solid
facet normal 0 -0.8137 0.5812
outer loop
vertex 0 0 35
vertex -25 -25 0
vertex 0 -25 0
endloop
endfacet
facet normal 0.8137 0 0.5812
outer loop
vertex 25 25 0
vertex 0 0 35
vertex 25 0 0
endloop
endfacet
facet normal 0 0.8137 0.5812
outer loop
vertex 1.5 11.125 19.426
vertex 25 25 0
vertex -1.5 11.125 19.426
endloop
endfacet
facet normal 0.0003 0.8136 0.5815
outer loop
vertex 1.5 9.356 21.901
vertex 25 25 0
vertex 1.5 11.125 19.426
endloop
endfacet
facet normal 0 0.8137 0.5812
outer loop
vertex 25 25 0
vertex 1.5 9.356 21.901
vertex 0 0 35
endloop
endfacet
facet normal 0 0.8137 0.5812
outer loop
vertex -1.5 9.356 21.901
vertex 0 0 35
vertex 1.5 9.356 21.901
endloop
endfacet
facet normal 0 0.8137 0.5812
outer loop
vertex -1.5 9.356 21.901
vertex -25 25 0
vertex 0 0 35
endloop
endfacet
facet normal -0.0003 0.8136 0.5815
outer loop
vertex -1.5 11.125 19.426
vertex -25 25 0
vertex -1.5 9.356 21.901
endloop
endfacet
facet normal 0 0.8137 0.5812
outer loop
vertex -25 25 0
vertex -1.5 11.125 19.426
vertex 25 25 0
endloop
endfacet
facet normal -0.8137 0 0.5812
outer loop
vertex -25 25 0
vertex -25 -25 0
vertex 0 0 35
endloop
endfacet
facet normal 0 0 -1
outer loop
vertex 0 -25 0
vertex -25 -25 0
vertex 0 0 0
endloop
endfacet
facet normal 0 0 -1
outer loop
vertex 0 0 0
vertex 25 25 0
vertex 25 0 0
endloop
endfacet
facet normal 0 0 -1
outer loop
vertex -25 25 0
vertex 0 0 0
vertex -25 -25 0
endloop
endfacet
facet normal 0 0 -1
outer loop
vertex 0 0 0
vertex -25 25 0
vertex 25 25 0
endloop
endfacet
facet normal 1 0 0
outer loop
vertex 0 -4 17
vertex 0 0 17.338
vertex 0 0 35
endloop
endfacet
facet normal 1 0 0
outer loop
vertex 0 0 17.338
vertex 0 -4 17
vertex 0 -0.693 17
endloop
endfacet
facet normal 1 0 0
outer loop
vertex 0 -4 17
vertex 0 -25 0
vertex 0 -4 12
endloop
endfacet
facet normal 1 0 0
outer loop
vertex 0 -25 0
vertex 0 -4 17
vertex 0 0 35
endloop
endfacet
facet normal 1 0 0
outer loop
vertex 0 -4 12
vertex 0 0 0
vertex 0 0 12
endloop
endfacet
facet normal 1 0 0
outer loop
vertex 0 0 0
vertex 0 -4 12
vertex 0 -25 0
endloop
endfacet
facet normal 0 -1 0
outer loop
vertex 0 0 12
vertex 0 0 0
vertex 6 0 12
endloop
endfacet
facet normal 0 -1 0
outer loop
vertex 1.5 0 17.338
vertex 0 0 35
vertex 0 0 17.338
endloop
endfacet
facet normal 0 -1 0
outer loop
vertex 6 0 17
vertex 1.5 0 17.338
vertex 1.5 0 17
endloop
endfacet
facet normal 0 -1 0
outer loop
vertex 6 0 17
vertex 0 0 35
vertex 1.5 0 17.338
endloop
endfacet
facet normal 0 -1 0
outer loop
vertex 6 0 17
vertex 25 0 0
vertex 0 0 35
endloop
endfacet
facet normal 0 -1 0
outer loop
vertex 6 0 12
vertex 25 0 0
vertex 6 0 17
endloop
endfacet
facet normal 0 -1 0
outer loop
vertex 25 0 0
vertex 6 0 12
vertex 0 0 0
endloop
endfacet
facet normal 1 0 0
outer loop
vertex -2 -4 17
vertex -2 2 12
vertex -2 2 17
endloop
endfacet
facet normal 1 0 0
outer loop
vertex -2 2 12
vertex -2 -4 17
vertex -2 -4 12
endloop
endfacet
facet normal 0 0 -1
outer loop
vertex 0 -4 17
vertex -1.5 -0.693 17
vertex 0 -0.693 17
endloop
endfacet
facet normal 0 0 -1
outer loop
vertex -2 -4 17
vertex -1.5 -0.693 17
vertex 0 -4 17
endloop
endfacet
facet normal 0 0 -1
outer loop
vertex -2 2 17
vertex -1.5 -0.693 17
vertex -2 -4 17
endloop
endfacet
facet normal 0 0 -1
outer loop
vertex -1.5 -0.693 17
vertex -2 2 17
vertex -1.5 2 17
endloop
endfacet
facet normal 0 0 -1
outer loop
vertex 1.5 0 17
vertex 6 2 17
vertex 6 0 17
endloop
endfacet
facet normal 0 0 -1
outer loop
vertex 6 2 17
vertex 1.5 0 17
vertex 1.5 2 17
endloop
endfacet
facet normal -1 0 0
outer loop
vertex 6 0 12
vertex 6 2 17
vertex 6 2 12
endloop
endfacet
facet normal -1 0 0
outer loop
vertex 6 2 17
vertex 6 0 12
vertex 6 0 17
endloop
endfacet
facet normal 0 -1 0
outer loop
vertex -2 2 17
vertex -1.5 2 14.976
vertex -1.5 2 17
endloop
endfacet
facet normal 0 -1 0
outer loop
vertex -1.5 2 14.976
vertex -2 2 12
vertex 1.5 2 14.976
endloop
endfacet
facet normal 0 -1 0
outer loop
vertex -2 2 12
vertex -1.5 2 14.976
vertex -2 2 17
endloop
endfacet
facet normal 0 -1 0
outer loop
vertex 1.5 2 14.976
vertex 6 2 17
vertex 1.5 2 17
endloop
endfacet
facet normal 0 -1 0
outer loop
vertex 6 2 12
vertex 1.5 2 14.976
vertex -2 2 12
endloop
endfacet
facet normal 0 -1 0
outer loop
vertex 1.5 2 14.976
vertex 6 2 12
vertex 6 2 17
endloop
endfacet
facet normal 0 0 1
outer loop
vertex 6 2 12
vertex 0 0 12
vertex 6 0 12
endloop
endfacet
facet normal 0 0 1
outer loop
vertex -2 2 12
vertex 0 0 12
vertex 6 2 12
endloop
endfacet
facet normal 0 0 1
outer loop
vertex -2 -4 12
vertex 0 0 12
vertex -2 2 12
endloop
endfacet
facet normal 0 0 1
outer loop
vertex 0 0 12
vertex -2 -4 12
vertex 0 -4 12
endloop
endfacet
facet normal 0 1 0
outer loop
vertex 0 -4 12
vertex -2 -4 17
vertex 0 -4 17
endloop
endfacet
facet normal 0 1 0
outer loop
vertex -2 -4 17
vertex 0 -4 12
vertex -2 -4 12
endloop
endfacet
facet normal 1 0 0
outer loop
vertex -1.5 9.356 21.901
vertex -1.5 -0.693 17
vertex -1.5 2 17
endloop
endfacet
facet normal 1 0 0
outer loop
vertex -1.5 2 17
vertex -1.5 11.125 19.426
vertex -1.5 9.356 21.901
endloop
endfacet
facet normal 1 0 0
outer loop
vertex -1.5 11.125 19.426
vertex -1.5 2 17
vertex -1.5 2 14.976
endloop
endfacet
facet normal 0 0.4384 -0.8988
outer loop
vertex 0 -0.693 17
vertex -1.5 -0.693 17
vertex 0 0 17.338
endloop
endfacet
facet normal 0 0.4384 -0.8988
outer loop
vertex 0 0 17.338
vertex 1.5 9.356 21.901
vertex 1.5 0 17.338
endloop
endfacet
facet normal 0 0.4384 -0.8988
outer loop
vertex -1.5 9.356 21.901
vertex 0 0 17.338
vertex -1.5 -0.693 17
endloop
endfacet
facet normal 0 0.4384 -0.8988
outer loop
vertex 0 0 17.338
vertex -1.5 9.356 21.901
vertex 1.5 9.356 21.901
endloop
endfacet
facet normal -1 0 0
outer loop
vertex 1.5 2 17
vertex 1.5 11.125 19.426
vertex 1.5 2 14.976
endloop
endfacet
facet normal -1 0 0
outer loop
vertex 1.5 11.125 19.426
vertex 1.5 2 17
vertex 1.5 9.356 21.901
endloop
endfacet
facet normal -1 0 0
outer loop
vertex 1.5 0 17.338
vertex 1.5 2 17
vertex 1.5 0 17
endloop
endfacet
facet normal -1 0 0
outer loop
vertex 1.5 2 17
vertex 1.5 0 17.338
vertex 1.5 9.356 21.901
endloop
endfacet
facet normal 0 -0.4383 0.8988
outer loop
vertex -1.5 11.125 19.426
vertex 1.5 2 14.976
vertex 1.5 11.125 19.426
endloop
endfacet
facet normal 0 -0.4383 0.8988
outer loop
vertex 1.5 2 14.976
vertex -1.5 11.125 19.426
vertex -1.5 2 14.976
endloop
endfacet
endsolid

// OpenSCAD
// DP-05 · Pirámide de Keops seccionada 50 x 50 x 35 mm
// Diseño e Impresión 3D en el aula · Pablo Moraga · CC BY-NC-ND 4.0
$fn = 64;
difference() {
  polyhedron(points = [[-25,-25,0],[25,-25,0],[25,25,0],[-25,25,0],[0,0,35]],
             faces = [[0,1,4],[1,2,4],[2,3,4],[3,0,4],[3,2,1,0]]);
  translate([0, -26, -1]) cube([26, 26, 40]);            // cuarto frontal derecho
  translate([-2, -4, 12]) cube([8, 6, 5]);               // cámara
  translate([-1.5, 0, 14]) rotate([26, 0, 0]) cube([3, 20, 3]);  // corredor
}
